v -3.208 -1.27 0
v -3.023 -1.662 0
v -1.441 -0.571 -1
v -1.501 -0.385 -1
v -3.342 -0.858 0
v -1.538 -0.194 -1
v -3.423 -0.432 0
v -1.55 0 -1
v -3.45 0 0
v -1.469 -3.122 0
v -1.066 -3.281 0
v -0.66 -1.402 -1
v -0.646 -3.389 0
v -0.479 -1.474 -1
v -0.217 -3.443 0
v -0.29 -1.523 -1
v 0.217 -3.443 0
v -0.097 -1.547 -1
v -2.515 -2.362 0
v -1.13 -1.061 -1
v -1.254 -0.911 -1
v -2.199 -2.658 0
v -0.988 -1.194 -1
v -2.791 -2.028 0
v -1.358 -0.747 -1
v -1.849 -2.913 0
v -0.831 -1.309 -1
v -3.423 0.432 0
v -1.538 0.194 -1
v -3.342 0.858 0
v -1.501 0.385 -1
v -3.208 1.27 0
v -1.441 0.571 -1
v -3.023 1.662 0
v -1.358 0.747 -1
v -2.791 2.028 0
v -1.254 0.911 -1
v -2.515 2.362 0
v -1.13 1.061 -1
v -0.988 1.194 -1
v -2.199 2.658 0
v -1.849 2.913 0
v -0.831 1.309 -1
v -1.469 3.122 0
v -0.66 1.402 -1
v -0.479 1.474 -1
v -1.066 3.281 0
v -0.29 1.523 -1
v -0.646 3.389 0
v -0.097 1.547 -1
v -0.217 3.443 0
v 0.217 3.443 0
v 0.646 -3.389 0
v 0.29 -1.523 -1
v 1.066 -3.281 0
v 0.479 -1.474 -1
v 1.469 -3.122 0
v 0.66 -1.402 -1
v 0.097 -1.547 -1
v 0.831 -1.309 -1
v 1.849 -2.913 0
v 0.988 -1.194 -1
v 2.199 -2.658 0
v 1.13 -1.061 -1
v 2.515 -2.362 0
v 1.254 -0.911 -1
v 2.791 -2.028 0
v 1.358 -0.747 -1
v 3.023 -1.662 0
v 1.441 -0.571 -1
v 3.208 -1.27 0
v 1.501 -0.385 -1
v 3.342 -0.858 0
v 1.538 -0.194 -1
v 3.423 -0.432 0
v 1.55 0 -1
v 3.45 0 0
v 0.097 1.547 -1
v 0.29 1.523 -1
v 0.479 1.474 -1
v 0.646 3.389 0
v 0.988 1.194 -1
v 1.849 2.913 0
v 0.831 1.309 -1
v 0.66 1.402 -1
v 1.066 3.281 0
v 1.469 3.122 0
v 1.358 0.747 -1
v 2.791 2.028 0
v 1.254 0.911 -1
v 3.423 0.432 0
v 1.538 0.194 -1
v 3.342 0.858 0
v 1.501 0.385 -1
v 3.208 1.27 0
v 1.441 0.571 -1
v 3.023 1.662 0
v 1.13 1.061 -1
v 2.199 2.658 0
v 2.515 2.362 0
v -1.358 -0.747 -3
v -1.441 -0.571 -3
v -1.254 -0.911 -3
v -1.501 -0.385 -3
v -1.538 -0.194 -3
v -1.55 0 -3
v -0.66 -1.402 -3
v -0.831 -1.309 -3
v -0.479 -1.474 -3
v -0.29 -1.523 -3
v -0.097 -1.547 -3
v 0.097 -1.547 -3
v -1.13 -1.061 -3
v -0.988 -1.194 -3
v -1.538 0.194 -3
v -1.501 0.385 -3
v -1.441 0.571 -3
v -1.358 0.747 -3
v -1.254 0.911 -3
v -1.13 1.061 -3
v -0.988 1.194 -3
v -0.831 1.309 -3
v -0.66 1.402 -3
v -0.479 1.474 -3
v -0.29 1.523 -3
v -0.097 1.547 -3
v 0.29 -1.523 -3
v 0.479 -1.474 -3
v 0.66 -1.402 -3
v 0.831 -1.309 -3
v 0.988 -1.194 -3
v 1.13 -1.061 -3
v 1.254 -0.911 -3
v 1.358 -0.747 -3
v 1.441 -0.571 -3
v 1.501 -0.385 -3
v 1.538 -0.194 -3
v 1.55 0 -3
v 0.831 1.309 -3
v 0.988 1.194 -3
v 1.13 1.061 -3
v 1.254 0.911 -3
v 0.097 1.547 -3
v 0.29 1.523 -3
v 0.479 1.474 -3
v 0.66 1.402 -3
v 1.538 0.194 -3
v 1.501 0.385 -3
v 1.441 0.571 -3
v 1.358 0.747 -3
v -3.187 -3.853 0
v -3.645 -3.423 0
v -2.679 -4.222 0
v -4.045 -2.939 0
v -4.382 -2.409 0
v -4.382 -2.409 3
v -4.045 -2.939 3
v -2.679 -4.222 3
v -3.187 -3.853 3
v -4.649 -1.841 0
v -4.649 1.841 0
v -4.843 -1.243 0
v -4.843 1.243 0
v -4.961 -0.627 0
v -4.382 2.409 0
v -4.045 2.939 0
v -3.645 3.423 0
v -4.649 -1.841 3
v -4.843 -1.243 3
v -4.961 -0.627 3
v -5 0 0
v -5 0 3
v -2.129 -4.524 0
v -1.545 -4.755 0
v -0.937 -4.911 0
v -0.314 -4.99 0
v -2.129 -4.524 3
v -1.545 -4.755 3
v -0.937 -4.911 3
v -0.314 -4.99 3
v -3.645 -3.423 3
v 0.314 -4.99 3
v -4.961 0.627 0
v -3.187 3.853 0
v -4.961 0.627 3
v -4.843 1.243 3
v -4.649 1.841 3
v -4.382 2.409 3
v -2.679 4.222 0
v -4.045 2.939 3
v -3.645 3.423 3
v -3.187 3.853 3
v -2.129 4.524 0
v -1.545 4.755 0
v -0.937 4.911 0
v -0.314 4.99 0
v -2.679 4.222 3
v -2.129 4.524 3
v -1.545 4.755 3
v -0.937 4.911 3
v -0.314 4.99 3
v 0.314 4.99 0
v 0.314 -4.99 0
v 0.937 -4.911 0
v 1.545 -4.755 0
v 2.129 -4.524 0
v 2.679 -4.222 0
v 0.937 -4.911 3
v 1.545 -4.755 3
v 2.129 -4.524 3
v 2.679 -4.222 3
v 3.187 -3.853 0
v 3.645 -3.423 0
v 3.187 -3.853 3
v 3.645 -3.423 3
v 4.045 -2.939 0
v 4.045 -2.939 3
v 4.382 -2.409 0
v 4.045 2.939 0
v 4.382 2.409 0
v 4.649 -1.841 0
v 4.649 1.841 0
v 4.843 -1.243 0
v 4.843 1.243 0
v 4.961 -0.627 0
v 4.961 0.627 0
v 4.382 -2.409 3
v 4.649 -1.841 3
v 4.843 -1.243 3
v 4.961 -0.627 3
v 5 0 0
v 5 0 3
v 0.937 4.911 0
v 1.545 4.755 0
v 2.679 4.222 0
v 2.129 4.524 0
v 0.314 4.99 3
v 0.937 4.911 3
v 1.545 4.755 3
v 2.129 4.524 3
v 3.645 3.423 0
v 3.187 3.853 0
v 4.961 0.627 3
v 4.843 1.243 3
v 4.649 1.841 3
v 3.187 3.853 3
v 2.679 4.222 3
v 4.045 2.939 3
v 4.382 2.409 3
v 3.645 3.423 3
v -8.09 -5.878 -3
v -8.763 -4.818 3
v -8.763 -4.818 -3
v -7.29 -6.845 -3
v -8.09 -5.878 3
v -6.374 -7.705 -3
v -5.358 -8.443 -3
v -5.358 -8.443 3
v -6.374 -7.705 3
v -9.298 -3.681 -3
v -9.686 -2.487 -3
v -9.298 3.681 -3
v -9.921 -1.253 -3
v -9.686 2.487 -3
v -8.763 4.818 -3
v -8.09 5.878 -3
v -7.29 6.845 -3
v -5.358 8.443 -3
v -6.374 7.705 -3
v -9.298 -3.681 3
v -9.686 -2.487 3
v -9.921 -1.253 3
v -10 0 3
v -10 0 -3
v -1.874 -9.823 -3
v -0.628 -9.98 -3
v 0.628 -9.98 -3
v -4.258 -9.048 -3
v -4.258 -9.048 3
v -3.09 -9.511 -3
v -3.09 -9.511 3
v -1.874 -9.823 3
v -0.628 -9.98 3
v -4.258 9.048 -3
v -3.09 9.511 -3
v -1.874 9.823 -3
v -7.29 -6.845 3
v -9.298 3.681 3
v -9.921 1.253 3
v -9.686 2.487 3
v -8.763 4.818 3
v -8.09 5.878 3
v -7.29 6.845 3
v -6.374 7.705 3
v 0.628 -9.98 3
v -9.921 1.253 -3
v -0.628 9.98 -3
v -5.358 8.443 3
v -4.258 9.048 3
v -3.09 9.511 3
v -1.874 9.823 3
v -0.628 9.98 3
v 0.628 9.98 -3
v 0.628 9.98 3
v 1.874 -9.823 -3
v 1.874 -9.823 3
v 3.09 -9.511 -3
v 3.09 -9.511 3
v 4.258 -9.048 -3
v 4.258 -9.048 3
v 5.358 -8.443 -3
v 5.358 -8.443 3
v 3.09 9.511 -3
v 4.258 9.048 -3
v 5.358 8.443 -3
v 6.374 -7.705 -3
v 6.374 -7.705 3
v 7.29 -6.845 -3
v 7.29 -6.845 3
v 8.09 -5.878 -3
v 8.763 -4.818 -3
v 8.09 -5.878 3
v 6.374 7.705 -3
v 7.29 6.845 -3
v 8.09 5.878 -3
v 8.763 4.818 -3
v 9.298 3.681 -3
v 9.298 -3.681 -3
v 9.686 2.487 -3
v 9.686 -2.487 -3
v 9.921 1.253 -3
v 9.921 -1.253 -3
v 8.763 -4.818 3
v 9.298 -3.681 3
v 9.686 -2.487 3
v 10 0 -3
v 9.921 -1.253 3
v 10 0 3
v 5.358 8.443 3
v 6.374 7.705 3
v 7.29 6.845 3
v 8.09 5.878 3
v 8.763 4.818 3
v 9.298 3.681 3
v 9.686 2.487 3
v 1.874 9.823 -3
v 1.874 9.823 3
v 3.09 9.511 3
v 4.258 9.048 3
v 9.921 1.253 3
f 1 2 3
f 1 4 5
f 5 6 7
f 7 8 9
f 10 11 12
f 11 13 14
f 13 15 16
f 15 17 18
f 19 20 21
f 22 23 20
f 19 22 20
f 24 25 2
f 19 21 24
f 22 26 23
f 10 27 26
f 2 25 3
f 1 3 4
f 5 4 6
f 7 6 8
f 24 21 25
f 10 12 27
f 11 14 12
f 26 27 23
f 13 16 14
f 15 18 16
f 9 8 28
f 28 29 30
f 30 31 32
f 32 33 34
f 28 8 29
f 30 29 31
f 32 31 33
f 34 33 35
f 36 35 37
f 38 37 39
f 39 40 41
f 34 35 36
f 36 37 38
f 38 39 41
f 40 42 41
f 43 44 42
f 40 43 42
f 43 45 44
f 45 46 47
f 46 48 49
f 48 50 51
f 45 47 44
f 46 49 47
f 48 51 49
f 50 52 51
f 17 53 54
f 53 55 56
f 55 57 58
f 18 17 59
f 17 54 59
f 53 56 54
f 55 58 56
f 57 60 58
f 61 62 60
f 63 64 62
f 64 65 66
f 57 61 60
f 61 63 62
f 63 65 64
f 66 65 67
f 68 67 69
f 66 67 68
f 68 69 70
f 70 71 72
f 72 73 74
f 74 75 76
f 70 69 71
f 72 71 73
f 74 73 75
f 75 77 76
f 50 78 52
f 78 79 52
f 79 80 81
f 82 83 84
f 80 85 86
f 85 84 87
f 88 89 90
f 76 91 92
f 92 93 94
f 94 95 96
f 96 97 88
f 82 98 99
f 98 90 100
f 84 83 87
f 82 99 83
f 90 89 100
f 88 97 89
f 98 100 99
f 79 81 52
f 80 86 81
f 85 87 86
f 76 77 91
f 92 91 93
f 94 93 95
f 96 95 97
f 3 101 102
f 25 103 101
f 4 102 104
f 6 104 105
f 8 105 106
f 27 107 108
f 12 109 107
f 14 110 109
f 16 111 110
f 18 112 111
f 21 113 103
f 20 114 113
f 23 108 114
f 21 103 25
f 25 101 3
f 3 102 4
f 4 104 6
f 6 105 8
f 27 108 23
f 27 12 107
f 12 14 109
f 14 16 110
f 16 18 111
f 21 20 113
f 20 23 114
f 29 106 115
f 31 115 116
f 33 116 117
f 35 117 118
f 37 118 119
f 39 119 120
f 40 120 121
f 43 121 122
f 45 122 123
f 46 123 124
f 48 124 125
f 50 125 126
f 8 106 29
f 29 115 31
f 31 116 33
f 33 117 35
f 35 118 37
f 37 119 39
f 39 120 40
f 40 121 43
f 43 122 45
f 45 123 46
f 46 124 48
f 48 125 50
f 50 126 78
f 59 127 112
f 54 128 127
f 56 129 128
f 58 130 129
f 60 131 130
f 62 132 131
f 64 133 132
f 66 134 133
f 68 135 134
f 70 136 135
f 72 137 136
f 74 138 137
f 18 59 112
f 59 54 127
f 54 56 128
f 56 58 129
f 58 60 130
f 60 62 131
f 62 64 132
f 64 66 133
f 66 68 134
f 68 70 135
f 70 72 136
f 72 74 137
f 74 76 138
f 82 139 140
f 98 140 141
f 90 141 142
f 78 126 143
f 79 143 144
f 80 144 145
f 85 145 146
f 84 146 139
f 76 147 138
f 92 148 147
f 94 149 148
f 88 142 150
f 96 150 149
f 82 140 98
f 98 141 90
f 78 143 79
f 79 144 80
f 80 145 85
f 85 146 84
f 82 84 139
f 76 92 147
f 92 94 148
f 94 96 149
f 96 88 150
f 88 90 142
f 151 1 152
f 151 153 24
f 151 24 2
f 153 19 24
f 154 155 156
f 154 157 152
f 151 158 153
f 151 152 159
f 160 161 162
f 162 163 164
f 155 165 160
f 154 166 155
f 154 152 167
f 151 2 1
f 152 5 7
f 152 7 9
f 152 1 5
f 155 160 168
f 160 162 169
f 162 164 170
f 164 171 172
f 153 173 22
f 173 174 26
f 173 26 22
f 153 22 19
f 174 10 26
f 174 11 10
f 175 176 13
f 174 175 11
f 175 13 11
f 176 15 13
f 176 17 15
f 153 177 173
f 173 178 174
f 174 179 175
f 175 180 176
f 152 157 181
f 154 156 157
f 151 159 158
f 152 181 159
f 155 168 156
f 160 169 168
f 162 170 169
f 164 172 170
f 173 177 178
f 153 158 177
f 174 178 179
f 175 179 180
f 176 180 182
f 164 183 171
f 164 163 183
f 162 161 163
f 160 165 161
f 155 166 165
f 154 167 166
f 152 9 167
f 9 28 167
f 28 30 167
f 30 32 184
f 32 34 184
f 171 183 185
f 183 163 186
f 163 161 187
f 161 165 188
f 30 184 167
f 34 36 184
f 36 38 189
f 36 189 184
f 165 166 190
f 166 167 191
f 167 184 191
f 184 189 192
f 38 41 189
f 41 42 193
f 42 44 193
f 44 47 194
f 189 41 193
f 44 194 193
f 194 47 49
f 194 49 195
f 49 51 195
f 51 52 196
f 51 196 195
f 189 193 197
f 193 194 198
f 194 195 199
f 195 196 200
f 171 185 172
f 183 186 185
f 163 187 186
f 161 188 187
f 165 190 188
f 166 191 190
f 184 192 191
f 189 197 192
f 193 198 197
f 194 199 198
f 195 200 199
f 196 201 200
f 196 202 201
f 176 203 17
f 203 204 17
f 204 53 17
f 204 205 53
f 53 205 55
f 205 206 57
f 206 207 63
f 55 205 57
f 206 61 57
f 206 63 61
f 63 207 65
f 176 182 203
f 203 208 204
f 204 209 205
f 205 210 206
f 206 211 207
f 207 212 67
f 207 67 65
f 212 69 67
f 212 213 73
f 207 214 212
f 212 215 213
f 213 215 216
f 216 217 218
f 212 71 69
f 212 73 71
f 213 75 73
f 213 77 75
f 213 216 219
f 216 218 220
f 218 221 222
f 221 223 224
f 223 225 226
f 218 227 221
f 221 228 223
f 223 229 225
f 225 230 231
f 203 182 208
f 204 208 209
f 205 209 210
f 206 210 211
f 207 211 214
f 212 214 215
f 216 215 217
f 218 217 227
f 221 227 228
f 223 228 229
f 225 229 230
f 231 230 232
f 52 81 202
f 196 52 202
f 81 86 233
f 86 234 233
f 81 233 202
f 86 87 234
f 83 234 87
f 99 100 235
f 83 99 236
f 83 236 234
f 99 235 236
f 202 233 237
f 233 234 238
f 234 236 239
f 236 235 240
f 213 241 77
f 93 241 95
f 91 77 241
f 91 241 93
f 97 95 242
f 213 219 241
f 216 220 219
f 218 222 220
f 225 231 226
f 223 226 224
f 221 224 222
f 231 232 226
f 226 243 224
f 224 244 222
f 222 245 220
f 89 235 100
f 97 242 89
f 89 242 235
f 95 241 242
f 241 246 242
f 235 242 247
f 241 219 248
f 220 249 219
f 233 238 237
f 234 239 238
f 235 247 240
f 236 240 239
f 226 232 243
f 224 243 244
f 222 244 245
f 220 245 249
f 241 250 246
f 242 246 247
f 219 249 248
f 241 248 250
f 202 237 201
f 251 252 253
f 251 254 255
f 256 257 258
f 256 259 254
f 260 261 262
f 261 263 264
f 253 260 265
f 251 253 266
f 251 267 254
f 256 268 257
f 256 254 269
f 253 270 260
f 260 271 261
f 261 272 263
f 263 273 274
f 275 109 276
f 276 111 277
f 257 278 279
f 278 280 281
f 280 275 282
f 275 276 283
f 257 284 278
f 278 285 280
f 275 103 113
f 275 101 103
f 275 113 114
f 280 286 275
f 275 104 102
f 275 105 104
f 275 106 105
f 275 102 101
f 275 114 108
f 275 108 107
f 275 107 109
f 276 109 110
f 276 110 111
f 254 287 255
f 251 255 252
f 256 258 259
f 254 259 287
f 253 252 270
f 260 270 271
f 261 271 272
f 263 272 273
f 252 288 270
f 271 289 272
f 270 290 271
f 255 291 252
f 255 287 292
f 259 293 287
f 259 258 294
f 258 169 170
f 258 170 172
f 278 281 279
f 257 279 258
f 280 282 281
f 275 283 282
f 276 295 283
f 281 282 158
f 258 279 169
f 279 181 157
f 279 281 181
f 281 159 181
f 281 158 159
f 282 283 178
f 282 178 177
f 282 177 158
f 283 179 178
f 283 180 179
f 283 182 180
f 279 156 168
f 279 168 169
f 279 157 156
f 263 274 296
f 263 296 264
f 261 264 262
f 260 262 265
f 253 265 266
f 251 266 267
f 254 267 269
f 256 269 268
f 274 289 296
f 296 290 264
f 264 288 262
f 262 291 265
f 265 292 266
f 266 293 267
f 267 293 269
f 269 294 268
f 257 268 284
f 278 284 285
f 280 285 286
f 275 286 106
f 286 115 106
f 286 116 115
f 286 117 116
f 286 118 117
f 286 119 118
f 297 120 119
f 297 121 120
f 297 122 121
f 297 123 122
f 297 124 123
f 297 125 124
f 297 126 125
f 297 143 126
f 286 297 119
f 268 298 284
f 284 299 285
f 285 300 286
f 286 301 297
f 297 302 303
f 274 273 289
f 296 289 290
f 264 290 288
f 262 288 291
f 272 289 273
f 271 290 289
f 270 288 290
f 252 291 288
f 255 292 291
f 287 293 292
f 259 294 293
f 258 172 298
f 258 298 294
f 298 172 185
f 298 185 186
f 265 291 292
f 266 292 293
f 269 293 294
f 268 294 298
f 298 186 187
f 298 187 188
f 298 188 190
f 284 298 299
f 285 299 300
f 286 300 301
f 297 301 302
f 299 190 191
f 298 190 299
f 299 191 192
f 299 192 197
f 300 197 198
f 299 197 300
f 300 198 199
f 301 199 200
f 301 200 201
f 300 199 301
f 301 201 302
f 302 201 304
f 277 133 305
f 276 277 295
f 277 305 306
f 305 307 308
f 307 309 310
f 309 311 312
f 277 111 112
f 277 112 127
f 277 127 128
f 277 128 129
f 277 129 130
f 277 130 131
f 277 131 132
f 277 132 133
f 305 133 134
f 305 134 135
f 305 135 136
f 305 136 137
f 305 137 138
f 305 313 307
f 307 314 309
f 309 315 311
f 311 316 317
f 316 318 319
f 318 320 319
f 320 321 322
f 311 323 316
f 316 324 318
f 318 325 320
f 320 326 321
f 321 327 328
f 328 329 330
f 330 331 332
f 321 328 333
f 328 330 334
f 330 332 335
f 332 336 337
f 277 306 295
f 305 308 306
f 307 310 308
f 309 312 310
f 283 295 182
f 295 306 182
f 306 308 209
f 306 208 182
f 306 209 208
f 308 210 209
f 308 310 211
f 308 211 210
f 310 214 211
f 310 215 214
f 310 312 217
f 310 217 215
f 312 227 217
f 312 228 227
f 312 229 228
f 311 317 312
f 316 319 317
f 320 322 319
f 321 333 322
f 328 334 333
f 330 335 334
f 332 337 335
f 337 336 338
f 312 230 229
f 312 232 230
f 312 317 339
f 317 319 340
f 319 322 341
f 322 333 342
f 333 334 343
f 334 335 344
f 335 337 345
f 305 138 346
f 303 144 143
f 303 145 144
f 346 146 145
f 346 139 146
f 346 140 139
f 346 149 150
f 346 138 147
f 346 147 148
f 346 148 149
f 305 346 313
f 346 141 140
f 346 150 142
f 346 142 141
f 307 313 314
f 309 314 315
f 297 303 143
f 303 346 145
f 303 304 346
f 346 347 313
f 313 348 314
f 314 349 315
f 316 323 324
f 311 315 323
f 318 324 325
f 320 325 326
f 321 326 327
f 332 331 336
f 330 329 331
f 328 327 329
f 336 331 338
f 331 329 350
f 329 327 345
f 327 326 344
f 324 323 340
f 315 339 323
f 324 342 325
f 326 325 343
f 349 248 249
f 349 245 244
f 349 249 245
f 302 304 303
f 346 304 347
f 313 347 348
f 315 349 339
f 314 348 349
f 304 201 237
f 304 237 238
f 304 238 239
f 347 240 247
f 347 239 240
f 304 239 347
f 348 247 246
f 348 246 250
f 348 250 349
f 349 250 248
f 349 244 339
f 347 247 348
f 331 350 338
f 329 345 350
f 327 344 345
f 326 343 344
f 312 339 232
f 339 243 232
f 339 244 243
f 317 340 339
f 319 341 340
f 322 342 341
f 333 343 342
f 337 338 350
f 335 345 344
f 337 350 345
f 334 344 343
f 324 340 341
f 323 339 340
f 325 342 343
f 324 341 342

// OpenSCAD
$fn = 50;

difference() {
	union() {
		translate(v = [0, 0, -3.0]) {
			cylinder(h = 6, r = 10.0);
		}
	}
	union() {
		translate(v = [0, 0, 0]) {
			rotate(a = [0, 0, 0]) {
				difference() {
					union() {
						translate(v = [0, 0, -6.0]) {
							cylinder(h = 6, r = 1.25);
						}
						translate(v = [0, 0, -1.0]) {
							cylinder(h = 1.0, r1 = 1.55, r2 = 3.45);
						}
						translate(v = [0, 0, -6.0]) {
							cylinder(h = 6, r = 1.55);
						}
						translate(v = [0, 0, -6.0]) {
							cylinder(h = 6, r = 1.25);
						}
					}
					union();
				}
			}
		}
		#cylinder(h = 3, r = 5.0);
	}
}
